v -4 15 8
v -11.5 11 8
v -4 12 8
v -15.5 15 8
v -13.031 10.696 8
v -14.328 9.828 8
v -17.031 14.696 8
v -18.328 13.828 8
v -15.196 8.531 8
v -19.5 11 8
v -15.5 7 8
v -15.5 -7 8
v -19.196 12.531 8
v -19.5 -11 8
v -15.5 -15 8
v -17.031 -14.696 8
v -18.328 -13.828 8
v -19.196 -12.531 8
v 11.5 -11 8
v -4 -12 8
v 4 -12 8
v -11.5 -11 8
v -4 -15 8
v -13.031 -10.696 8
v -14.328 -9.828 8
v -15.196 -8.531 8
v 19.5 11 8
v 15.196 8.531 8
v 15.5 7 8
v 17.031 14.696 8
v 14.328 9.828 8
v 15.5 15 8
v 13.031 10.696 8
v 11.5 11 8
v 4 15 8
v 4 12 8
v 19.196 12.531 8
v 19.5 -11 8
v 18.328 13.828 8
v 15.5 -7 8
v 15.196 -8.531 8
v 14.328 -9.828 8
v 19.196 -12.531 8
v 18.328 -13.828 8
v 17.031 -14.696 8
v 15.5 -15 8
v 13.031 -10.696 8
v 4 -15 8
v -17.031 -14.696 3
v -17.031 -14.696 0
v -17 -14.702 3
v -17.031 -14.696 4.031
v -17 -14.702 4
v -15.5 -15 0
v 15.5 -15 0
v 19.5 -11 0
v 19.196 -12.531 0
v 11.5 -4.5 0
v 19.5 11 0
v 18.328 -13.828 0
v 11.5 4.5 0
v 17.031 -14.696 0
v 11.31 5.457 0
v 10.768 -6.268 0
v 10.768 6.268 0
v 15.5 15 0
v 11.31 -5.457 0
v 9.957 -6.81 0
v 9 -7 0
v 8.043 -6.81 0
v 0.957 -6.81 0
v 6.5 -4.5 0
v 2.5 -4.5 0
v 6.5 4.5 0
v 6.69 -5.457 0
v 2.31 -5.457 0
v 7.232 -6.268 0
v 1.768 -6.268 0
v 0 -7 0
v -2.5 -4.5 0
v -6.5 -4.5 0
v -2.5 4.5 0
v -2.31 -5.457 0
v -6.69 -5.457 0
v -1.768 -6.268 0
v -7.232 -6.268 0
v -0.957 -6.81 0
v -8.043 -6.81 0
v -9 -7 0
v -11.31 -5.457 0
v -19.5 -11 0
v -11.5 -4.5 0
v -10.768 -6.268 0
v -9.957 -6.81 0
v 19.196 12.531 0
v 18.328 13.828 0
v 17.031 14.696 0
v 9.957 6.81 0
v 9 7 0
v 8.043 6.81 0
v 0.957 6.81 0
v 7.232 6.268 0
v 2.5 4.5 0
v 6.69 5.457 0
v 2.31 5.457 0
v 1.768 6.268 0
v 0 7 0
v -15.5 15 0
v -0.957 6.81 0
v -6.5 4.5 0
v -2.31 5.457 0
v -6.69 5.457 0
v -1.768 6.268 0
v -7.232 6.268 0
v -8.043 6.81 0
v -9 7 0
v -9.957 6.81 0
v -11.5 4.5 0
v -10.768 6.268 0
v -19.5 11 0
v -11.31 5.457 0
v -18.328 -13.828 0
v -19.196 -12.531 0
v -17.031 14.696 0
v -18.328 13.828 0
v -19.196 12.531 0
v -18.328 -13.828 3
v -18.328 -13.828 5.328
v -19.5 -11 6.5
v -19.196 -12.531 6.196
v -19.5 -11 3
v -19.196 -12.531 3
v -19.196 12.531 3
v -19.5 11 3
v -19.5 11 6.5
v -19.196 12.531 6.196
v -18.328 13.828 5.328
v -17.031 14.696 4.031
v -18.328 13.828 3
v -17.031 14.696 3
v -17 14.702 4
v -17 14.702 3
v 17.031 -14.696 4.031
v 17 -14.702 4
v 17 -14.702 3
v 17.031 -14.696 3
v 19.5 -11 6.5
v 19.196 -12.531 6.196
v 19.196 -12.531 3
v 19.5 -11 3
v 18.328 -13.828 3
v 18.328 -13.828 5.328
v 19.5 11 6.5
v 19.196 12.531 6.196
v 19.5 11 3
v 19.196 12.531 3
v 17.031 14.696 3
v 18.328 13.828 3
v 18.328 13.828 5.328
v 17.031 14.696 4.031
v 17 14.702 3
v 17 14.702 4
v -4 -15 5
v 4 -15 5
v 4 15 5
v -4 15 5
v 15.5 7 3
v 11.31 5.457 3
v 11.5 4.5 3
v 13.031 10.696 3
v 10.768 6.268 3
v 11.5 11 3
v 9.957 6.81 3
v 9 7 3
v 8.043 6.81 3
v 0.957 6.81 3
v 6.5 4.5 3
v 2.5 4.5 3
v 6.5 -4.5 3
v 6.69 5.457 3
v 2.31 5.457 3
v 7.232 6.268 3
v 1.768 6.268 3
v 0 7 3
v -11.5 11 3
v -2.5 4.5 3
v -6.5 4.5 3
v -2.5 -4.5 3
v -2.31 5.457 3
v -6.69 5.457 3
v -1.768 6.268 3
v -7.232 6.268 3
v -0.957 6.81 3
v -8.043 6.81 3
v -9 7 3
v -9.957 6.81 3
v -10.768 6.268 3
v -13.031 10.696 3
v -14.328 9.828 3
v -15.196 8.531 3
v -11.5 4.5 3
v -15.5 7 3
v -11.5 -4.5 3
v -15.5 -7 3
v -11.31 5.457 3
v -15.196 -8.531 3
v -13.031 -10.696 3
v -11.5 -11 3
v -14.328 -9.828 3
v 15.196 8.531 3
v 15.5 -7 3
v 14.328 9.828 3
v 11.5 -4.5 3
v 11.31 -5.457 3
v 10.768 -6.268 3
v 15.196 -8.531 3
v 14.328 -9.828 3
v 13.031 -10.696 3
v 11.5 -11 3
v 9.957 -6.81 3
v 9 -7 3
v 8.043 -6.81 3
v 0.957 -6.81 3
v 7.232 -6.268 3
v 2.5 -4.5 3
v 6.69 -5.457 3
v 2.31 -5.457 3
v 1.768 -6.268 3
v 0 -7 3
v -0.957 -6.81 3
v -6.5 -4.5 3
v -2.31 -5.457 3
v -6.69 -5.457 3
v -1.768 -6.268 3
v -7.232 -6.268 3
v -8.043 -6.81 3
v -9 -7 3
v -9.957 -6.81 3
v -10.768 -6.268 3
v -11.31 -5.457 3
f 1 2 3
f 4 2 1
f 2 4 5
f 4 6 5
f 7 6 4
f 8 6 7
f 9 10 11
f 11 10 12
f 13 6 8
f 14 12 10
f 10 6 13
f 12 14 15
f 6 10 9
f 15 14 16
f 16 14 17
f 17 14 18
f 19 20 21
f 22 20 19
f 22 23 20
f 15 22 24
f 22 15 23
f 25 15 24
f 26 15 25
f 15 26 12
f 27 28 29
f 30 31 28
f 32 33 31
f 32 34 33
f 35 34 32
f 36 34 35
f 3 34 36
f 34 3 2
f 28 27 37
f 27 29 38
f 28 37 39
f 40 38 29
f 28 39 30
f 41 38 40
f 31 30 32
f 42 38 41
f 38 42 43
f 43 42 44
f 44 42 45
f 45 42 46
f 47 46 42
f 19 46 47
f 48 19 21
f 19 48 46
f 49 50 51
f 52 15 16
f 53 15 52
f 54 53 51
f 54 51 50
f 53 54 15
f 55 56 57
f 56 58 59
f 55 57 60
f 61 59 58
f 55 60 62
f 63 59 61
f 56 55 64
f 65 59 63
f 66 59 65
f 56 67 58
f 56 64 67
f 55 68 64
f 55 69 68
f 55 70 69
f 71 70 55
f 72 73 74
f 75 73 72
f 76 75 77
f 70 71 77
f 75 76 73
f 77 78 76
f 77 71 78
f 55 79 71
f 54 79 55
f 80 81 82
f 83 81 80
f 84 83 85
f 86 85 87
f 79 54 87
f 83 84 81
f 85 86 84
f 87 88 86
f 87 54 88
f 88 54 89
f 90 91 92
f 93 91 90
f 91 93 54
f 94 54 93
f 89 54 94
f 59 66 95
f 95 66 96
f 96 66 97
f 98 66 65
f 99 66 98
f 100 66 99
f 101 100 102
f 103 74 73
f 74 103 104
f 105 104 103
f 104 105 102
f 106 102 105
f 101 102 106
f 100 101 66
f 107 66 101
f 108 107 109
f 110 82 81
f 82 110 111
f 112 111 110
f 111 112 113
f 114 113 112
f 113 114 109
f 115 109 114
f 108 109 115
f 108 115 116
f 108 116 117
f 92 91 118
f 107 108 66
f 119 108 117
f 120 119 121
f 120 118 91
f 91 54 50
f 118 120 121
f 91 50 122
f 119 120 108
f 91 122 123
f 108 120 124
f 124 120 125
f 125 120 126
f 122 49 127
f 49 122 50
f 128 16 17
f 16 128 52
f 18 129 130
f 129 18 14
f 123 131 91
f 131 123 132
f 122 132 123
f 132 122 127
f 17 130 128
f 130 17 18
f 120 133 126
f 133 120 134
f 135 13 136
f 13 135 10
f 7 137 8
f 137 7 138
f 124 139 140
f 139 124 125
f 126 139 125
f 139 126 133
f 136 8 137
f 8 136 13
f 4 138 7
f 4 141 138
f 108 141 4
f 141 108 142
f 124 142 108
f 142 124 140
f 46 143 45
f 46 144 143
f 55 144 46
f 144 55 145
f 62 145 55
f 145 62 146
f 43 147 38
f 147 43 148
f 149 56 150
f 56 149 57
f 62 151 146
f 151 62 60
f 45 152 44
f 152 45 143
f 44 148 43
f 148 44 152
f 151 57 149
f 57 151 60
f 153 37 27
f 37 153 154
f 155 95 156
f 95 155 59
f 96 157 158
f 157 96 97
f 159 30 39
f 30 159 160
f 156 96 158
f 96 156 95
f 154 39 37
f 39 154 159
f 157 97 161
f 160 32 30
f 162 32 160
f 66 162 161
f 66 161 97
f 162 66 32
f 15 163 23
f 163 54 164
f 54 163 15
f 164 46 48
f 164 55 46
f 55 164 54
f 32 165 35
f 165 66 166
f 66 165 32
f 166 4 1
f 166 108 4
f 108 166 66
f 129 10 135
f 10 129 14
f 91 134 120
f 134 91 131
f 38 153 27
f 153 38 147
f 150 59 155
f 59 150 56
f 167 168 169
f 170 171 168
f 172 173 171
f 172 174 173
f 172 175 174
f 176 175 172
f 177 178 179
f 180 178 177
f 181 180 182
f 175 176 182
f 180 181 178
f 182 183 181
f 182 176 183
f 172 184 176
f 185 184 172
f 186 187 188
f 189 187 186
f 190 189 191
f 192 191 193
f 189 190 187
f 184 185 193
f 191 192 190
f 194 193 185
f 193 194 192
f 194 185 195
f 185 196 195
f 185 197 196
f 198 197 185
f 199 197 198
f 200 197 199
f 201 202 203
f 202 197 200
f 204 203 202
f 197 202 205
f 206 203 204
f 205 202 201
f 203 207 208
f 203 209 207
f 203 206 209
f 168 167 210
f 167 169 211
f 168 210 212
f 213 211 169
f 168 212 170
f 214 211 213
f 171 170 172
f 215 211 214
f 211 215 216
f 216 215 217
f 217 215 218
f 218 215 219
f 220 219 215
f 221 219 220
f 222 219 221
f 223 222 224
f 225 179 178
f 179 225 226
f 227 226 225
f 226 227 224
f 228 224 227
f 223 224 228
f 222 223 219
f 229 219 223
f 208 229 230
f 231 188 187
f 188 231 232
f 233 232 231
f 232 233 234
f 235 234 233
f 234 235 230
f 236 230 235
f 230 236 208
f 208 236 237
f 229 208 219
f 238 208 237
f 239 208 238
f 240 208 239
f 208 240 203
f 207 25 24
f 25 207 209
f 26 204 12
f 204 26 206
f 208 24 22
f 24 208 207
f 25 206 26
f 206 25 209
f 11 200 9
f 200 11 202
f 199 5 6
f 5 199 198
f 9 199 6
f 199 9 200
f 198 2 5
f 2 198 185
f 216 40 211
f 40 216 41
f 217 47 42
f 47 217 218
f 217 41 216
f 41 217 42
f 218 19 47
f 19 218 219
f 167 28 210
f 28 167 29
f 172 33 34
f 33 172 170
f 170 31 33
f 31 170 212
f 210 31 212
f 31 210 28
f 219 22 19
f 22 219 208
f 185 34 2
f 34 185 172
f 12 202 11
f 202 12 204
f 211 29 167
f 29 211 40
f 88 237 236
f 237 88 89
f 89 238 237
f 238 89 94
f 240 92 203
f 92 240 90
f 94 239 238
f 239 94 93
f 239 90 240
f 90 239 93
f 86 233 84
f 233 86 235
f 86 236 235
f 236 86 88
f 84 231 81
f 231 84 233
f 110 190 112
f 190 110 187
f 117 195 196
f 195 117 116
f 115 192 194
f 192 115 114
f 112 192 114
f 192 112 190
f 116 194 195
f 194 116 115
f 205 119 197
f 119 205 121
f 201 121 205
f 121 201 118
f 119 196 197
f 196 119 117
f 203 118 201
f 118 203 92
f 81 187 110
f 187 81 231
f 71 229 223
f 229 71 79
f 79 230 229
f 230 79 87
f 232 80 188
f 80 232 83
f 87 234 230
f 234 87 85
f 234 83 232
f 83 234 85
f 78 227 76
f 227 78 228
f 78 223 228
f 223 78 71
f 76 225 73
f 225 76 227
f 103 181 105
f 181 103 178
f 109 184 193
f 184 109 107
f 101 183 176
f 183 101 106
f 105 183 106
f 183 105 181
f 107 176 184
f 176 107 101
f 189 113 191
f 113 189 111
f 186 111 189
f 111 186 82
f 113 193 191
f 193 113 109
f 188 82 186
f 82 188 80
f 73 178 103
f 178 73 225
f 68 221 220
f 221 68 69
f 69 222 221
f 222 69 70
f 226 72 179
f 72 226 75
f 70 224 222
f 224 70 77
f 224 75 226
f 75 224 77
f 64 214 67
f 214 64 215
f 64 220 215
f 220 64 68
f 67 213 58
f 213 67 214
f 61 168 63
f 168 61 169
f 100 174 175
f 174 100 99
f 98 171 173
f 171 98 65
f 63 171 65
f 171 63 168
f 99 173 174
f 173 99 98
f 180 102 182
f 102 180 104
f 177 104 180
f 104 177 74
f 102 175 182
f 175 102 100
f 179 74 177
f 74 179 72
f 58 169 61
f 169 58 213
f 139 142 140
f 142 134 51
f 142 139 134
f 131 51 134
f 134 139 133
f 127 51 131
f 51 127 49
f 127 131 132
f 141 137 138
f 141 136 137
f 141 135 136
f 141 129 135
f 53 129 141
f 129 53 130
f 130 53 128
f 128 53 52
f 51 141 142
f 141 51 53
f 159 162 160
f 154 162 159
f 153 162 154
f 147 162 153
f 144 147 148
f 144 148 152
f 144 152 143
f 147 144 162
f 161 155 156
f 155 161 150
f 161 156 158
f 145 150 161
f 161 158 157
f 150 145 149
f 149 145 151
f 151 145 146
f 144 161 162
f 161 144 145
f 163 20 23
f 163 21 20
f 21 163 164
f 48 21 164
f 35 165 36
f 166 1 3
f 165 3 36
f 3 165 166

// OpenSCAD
/* An Arca-Swiss compatible quick-release plate.
 *
 * Author: Lari Koponen
 * Version: 0.0
 */

module rounded_cubic_cylinder(w,d,h,r)
{
	union()
	{
		for (x = [-(w/2-r),w/2-r]) {
			for (y = [-(d/2-r),d/2-r]) {
				translate([x,y,0]) cylinder(h = h, r = r, $fn = 16);
			}
		}
		translate([-(w-2*r)/2,-d/2,0]) cube([w-2*r,d,h]);
		translate([-w/2,-(d-2*r)/2,0]) cube([w,d-2*r,h]);
	}
}

width = 39;
depth = 30;
height = 8;
thickness_side = 4;
thickness_base = 3;

width_hole = 5;
depth_hole = 14;

eps = 0.001;

debug = false;

difference() {
    // The plate.
    x1 = width;
    y1 = depth;
    z1 = height;
    rounded_cubic_cylinder(x1, y1, z1, thickness_side);
    
    // Center cut out.
    x2 = width - 2 * thickness_side;
    y2 = depth - 2 * thickness_side;
    z2 = height - thickness_base + eps;
    translate([0, 0, thickness_base]) rounded_cubic_cylinder(x2, y2, z2, thickness_side);
    
    // Holes.
    for (position = [-9, 0, 9]) {
        translate([position, 0, -eps]) rounded_cubic_cylinder(width_hole, depth_hole, thickness_base + 2 * eps, width_hole/2);
    }
    
    // Left and right dovetail.
    for (sign = [-1, 1]) {
        translate([34/2 * sign, -20 * sign, thickness_base])
        rotate([90, 0, 90 + 90 * sign])
        linear_extrude(height = 40, center = false, convexity = 10, twist = 0, slices = 10)
        polygon([[0, 0], [0, 1], [-4, 5], [-4, 0]]);
    }
    
    // Front and back ramps.
    for (sign = [-1, 1]) {
        //translate([34/2 * sign, -20 * sign, thickness_base])
        translate([4 * sign, depth/2 * sign, height])
        rotate([90, 0, 180 + 90 * sign])
        linear_extrude(height = 8, center = false, convexity = 10, twist = 0, slices = 8)
        polygon([[-1, 1], [-1, -4], [4, 1]]);
    }
    
    if(debug) {
        translate([-50, -100, -50]) cube([100, 100, 100]);
    }
}
